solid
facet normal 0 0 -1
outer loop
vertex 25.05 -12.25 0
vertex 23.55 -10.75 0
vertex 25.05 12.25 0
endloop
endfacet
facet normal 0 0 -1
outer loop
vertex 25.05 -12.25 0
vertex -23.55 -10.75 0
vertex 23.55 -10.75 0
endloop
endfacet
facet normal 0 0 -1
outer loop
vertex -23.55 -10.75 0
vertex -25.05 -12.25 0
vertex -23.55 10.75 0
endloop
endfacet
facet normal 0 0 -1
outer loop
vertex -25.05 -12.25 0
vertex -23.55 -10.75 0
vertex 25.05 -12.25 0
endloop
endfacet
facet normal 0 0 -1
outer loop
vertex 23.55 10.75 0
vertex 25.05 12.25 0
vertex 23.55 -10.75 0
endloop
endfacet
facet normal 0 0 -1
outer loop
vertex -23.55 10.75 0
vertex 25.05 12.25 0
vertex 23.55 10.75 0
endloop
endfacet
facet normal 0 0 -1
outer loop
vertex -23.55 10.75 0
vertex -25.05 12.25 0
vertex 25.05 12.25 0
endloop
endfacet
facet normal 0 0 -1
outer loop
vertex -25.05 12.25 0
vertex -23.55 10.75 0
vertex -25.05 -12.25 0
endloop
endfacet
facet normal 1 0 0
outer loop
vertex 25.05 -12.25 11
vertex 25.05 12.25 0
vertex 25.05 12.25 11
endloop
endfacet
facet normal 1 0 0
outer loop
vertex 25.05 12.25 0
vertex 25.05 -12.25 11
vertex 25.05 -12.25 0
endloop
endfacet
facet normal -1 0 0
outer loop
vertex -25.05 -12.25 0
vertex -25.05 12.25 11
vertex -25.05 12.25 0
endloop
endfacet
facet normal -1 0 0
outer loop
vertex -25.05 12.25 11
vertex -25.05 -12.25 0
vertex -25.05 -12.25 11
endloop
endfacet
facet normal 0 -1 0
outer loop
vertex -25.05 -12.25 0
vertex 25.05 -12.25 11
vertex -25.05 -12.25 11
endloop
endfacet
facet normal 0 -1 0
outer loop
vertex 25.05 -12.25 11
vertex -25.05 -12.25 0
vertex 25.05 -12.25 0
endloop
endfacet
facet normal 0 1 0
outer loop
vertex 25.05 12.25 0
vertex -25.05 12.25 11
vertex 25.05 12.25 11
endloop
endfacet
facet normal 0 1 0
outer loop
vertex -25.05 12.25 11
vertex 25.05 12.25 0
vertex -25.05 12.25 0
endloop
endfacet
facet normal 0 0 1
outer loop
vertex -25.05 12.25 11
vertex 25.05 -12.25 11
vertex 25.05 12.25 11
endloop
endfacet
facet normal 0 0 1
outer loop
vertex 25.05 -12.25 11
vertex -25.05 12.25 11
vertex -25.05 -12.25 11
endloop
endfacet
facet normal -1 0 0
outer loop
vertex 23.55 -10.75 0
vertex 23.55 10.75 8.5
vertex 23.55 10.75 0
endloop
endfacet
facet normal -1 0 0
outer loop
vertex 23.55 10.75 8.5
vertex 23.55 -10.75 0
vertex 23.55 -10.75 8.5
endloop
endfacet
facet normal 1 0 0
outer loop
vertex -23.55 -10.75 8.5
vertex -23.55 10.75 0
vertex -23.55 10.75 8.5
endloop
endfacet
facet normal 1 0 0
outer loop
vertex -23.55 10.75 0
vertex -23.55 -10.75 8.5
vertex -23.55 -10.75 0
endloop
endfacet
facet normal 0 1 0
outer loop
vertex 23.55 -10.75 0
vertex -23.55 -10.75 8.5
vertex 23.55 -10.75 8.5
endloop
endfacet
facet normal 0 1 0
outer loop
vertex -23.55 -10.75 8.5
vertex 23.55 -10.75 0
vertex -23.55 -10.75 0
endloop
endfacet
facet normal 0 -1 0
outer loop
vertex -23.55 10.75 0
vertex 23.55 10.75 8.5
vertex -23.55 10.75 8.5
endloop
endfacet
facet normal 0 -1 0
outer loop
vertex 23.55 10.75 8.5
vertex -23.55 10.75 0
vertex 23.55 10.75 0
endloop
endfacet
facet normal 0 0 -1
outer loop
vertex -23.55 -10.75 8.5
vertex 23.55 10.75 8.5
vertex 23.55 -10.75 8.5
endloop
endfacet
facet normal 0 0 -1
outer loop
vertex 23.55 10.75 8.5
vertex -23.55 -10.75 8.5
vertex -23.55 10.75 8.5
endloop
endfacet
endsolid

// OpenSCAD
difference() {

    linear_extrude(11) {
        square([50.1,24.5],true);
    }
    translate([0,0,-0.5]) {
        linear_extrude(9)
        {
            square([47.1,21.5],true);
        }
    }
}
